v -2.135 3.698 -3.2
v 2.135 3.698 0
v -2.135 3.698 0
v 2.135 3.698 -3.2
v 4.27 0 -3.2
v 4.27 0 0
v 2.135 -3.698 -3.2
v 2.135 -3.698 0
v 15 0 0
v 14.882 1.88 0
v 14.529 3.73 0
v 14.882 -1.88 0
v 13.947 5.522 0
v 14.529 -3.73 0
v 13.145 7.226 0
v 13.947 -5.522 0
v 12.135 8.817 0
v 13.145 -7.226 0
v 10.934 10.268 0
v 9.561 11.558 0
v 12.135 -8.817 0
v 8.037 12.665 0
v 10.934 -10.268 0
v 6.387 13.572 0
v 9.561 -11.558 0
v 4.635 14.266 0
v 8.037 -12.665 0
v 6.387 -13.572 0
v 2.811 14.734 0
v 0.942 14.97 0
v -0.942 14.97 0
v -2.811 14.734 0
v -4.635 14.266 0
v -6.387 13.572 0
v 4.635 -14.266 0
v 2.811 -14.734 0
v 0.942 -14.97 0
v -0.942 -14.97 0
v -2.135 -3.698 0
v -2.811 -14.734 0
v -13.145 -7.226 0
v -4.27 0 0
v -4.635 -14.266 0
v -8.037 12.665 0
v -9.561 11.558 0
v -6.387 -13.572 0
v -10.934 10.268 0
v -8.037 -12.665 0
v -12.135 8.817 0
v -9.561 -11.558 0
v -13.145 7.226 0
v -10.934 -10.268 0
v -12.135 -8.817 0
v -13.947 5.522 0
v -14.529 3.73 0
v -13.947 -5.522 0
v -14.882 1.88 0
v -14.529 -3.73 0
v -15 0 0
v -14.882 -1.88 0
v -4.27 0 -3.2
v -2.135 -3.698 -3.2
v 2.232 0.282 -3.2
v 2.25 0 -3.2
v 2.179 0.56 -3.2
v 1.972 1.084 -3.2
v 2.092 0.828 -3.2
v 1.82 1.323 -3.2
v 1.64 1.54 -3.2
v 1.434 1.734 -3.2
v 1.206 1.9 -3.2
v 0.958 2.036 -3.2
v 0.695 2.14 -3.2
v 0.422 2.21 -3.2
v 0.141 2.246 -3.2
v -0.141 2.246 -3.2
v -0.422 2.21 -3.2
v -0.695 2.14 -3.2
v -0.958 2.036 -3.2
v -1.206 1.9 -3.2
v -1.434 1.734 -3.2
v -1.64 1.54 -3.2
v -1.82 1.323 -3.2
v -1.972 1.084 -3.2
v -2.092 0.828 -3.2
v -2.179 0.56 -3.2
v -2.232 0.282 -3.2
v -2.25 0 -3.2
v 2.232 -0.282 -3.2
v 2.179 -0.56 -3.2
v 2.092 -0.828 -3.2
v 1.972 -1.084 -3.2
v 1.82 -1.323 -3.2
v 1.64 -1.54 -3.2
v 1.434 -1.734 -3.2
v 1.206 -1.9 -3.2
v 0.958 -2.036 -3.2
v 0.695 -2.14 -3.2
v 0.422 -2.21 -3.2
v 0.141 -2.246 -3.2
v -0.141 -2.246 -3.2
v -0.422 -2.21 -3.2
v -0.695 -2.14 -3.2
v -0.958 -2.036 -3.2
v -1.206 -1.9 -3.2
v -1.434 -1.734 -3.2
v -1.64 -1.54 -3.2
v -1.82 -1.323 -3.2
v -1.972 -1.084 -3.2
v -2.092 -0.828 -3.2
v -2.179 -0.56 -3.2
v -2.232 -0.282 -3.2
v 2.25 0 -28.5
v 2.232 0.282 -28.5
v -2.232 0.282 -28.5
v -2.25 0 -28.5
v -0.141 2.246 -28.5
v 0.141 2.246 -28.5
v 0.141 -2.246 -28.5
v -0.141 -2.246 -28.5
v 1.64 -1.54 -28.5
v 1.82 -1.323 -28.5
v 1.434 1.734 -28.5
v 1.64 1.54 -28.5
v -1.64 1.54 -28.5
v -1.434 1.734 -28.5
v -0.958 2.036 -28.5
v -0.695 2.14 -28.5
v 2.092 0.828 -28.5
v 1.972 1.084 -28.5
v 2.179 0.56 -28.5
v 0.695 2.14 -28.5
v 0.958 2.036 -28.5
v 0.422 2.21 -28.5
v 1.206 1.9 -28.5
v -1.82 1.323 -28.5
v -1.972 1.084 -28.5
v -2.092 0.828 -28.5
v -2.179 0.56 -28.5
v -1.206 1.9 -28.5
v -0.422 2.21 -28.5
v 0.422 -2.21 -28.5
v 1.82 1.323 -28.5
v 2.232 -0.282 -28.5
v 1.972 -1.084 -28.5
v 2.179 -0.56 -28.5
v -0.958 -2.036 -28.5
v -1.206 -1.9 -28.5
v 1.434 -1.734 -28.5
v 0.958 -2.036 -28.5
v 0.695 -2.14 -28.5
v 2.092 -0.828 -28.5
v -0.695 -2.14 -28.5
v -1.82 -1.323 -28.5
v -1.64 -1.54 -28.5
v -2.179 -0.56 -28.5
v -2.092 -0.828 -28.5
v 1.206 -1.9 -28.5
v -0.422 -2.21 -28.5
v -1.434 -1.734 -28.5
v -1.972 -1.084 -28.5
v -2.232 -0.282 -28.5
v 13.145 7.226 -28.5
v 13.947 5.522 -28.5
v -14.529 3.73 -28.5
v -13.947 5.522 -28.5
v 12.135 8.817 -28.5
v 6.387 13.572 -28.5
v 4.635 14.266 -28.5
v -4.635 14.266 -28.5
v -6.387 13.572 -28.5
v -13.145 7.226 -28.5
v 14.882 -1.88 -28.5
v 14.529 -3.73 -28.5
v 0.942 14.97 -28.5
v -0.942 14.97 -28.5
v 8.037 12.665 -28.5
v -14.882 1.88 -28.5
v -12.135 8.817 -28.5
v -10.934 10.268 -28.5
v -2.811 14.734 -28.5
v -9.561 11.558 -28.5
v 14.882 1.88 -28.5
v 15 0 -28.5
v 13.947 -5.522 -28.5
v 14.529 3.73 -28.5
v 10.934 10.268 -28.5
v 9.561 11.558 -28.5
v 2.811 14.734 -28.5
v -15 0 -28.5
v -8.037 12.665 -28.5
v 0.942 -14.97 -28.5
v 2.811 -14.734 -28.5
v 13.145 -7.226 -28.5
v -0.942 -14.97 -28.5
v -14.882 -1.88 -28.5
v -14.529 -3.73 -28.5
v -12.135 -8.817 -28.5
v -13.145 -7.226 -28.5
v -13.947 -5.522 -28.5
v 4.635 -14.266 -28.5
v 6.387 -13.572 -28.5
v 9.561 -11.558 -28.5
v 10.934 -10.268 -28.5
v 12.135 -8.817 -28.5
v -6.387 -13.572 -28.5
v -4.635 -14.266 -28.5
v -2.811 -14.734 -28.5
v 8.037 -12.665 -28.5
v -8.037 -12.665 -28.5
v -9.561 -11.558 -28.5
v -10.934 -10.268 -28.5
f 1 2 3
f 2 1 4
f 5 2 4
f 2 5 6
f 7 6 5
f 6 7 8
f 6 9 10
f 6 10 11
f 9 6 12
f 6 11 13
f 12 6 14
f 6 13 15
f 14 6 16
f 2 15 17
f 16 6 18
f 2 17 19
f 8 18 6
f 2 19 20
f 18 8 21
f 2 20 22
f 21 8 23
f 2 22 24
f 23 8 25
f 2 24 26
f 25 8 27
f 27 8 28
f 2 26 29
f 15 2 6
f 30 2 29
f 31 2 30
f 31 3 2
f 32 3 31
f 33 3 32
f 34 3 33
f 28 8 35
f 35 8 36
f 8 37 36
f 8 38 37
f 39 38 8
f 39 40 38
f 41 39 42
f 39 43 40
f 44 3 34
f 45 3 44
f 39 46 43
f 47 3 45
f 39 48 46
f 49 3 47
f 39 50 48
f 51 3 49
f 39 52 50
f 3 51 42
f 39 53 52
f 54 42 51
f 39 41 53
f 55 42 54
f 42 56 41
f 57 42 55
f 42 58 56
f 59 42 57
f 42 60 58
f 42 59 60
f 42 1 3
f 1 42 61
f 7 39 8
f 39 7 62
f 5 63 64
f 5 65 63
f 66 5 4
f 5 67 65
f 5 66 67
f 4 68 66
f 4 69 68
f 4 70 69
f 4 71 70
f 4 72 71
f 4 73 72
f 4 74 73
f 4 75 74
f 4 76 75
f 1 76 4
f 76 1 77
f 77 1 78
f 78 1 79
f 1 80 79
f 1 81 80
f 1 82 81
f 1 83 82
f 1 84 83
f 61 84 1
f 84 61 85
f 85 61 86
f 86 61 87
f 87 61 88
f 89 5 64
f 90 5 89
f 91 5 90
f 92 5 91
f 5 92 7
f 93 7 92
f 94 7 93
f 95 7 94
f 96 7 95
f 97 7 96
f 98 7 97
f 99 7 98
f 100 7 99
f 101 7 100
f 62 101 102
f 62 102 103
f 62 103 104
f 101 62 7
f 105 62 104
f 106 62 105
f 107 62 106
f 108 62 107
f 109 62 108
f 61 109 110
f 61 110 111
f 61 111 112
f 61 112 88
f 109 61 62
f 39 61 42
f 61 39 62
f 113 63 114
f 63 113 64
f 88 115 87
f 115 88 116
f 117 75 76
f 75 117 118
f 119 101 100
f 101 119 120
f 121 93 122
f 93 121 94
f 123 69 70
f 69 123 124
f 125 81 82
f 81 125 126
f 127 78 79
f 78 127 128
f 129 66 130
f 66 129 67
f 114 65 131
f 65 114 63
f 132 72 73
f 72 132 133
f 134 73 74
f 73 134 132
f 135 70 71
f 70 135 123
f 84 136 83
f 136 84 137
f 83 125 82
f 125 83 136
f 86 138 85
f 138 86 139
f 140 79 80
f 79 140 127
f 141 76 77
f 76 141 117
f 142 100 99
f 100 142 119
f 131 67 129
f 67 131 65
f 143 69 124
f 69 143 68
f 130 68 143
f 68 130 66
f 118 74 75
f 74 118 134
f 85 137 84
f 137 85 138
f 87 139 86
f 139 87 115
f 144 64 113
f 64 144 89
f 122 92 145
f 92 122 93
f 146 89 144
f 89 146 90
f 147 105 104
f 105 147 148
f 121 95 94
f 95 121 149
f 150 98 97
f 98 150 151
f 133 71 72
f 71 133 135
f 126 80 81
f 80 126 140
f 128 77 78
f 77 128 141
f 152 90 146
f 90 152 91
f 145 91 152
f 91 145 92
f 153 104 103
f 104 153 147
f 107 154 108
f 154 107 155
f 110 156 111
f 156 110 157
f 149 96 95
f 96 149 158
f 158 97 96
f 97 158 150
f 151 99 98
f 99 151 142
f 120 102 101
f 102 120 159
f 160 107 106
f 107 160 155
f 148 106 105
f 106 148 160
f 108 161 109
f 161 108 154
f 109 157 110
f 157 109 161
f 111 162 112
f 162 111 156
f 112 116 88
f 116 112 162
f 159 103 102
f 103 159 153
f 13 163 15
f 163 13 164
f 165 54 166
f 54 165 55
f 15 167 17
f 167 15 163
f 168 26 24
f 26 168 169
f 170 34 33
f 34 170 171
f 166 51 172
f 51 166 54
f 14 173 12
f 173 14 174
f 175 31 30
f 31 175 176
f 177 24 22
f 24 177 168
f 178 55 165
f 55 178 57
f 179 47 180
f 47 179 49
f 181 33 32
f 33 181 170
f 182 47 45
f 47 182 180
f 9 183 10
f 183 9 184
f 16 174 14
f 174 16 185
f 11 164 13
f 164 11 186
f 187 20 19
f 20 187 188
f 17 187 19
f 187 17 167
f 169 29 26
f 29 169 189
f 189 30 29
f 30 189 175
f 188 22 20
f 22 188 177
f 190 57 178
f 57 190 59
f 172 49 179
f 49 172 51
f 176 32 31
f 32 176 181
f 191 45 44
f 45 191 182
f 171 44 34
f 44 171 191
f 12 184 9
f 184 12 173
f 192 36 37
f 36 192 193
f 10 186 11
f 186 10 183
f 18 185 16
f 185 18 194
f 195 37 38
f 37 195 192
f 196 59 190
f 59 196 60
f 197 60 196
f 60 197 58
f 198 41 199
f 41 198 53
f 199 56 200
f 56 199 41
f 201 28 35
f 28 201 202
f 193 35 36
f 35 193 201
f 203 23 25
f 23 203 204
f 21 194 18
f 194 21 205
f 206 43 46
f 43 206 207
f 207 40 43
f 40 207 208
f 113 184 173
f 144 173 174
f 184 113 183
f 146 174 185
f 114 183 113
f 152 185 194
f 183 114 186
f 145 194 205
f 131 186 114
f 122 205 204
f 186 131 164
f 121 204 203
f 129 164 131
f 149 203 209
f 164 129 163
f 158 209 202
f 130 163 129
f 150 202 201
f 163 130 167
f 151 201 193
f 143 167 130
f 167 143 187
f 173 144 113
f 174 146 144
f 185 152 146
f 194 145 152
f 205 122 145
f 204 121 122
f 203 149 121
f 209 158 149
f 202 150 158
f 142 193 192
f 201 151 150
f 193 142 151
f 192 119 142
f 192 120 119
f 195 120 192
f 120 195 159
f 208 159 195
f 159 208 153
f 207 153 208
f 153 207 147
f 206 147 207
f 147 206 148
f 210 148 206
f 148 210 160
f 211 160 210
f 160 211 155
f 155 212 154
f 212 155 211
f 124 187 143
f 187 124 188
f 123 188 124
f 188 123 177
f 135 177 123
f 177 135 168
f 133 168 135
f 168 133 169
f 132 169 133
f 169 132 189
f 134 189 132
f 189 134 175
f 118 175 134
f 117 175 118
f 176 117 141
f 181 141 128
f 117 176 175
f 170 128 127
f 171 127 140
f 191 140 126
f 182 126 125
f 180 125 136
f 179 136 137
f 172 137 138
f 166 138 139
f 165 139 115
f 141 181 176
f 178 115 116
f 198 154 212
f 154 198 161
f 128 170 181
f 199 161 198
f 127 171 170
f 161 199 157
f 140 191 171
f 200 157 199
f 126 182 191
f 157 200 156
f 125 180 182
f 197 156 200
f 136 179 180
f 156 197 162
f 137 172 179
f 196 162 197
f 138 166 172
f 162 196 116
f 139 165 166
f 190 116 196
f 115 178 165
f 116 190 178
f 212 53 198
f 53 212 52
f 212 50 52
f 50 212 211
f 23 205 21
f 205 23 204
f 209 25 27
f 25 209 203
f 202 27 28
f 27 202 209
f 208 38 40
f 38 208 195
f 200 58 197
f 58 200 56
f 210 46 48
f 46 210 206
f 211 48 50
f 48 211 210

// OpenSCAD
$fn = 50;

difference() {
	union() {
		translate(v = [0, 0, -28.5]) {
			cylinder(h = 28.5, r = 15.0);
		}
	}
	union() {
		translate(v = [0, 0, 0]) {
			rotate(a = [0, 0, 0]) {
				difference() {
					union() {
						translate(v = [0, 0, -3.2]) {
							linear_extrude(height = 3.2) {
								polygon(points = [[4.2698, 0.0], [2.1349000000000005, 3.697755269078796], [-2.134899999999999, 3.6977552690787965], [-4.2698, 5.228996902999369e-16], [-2.134900000000002, -3.6977552690787956], [2.1348999999999974, -3.697755269078798]]);
							}
						}
					}
					union();
				}
			}
		}
		#translate(v = [0, 0, -100.0]) {
			cylinder(h = 200, r = 2.25);
		}
	}
}
